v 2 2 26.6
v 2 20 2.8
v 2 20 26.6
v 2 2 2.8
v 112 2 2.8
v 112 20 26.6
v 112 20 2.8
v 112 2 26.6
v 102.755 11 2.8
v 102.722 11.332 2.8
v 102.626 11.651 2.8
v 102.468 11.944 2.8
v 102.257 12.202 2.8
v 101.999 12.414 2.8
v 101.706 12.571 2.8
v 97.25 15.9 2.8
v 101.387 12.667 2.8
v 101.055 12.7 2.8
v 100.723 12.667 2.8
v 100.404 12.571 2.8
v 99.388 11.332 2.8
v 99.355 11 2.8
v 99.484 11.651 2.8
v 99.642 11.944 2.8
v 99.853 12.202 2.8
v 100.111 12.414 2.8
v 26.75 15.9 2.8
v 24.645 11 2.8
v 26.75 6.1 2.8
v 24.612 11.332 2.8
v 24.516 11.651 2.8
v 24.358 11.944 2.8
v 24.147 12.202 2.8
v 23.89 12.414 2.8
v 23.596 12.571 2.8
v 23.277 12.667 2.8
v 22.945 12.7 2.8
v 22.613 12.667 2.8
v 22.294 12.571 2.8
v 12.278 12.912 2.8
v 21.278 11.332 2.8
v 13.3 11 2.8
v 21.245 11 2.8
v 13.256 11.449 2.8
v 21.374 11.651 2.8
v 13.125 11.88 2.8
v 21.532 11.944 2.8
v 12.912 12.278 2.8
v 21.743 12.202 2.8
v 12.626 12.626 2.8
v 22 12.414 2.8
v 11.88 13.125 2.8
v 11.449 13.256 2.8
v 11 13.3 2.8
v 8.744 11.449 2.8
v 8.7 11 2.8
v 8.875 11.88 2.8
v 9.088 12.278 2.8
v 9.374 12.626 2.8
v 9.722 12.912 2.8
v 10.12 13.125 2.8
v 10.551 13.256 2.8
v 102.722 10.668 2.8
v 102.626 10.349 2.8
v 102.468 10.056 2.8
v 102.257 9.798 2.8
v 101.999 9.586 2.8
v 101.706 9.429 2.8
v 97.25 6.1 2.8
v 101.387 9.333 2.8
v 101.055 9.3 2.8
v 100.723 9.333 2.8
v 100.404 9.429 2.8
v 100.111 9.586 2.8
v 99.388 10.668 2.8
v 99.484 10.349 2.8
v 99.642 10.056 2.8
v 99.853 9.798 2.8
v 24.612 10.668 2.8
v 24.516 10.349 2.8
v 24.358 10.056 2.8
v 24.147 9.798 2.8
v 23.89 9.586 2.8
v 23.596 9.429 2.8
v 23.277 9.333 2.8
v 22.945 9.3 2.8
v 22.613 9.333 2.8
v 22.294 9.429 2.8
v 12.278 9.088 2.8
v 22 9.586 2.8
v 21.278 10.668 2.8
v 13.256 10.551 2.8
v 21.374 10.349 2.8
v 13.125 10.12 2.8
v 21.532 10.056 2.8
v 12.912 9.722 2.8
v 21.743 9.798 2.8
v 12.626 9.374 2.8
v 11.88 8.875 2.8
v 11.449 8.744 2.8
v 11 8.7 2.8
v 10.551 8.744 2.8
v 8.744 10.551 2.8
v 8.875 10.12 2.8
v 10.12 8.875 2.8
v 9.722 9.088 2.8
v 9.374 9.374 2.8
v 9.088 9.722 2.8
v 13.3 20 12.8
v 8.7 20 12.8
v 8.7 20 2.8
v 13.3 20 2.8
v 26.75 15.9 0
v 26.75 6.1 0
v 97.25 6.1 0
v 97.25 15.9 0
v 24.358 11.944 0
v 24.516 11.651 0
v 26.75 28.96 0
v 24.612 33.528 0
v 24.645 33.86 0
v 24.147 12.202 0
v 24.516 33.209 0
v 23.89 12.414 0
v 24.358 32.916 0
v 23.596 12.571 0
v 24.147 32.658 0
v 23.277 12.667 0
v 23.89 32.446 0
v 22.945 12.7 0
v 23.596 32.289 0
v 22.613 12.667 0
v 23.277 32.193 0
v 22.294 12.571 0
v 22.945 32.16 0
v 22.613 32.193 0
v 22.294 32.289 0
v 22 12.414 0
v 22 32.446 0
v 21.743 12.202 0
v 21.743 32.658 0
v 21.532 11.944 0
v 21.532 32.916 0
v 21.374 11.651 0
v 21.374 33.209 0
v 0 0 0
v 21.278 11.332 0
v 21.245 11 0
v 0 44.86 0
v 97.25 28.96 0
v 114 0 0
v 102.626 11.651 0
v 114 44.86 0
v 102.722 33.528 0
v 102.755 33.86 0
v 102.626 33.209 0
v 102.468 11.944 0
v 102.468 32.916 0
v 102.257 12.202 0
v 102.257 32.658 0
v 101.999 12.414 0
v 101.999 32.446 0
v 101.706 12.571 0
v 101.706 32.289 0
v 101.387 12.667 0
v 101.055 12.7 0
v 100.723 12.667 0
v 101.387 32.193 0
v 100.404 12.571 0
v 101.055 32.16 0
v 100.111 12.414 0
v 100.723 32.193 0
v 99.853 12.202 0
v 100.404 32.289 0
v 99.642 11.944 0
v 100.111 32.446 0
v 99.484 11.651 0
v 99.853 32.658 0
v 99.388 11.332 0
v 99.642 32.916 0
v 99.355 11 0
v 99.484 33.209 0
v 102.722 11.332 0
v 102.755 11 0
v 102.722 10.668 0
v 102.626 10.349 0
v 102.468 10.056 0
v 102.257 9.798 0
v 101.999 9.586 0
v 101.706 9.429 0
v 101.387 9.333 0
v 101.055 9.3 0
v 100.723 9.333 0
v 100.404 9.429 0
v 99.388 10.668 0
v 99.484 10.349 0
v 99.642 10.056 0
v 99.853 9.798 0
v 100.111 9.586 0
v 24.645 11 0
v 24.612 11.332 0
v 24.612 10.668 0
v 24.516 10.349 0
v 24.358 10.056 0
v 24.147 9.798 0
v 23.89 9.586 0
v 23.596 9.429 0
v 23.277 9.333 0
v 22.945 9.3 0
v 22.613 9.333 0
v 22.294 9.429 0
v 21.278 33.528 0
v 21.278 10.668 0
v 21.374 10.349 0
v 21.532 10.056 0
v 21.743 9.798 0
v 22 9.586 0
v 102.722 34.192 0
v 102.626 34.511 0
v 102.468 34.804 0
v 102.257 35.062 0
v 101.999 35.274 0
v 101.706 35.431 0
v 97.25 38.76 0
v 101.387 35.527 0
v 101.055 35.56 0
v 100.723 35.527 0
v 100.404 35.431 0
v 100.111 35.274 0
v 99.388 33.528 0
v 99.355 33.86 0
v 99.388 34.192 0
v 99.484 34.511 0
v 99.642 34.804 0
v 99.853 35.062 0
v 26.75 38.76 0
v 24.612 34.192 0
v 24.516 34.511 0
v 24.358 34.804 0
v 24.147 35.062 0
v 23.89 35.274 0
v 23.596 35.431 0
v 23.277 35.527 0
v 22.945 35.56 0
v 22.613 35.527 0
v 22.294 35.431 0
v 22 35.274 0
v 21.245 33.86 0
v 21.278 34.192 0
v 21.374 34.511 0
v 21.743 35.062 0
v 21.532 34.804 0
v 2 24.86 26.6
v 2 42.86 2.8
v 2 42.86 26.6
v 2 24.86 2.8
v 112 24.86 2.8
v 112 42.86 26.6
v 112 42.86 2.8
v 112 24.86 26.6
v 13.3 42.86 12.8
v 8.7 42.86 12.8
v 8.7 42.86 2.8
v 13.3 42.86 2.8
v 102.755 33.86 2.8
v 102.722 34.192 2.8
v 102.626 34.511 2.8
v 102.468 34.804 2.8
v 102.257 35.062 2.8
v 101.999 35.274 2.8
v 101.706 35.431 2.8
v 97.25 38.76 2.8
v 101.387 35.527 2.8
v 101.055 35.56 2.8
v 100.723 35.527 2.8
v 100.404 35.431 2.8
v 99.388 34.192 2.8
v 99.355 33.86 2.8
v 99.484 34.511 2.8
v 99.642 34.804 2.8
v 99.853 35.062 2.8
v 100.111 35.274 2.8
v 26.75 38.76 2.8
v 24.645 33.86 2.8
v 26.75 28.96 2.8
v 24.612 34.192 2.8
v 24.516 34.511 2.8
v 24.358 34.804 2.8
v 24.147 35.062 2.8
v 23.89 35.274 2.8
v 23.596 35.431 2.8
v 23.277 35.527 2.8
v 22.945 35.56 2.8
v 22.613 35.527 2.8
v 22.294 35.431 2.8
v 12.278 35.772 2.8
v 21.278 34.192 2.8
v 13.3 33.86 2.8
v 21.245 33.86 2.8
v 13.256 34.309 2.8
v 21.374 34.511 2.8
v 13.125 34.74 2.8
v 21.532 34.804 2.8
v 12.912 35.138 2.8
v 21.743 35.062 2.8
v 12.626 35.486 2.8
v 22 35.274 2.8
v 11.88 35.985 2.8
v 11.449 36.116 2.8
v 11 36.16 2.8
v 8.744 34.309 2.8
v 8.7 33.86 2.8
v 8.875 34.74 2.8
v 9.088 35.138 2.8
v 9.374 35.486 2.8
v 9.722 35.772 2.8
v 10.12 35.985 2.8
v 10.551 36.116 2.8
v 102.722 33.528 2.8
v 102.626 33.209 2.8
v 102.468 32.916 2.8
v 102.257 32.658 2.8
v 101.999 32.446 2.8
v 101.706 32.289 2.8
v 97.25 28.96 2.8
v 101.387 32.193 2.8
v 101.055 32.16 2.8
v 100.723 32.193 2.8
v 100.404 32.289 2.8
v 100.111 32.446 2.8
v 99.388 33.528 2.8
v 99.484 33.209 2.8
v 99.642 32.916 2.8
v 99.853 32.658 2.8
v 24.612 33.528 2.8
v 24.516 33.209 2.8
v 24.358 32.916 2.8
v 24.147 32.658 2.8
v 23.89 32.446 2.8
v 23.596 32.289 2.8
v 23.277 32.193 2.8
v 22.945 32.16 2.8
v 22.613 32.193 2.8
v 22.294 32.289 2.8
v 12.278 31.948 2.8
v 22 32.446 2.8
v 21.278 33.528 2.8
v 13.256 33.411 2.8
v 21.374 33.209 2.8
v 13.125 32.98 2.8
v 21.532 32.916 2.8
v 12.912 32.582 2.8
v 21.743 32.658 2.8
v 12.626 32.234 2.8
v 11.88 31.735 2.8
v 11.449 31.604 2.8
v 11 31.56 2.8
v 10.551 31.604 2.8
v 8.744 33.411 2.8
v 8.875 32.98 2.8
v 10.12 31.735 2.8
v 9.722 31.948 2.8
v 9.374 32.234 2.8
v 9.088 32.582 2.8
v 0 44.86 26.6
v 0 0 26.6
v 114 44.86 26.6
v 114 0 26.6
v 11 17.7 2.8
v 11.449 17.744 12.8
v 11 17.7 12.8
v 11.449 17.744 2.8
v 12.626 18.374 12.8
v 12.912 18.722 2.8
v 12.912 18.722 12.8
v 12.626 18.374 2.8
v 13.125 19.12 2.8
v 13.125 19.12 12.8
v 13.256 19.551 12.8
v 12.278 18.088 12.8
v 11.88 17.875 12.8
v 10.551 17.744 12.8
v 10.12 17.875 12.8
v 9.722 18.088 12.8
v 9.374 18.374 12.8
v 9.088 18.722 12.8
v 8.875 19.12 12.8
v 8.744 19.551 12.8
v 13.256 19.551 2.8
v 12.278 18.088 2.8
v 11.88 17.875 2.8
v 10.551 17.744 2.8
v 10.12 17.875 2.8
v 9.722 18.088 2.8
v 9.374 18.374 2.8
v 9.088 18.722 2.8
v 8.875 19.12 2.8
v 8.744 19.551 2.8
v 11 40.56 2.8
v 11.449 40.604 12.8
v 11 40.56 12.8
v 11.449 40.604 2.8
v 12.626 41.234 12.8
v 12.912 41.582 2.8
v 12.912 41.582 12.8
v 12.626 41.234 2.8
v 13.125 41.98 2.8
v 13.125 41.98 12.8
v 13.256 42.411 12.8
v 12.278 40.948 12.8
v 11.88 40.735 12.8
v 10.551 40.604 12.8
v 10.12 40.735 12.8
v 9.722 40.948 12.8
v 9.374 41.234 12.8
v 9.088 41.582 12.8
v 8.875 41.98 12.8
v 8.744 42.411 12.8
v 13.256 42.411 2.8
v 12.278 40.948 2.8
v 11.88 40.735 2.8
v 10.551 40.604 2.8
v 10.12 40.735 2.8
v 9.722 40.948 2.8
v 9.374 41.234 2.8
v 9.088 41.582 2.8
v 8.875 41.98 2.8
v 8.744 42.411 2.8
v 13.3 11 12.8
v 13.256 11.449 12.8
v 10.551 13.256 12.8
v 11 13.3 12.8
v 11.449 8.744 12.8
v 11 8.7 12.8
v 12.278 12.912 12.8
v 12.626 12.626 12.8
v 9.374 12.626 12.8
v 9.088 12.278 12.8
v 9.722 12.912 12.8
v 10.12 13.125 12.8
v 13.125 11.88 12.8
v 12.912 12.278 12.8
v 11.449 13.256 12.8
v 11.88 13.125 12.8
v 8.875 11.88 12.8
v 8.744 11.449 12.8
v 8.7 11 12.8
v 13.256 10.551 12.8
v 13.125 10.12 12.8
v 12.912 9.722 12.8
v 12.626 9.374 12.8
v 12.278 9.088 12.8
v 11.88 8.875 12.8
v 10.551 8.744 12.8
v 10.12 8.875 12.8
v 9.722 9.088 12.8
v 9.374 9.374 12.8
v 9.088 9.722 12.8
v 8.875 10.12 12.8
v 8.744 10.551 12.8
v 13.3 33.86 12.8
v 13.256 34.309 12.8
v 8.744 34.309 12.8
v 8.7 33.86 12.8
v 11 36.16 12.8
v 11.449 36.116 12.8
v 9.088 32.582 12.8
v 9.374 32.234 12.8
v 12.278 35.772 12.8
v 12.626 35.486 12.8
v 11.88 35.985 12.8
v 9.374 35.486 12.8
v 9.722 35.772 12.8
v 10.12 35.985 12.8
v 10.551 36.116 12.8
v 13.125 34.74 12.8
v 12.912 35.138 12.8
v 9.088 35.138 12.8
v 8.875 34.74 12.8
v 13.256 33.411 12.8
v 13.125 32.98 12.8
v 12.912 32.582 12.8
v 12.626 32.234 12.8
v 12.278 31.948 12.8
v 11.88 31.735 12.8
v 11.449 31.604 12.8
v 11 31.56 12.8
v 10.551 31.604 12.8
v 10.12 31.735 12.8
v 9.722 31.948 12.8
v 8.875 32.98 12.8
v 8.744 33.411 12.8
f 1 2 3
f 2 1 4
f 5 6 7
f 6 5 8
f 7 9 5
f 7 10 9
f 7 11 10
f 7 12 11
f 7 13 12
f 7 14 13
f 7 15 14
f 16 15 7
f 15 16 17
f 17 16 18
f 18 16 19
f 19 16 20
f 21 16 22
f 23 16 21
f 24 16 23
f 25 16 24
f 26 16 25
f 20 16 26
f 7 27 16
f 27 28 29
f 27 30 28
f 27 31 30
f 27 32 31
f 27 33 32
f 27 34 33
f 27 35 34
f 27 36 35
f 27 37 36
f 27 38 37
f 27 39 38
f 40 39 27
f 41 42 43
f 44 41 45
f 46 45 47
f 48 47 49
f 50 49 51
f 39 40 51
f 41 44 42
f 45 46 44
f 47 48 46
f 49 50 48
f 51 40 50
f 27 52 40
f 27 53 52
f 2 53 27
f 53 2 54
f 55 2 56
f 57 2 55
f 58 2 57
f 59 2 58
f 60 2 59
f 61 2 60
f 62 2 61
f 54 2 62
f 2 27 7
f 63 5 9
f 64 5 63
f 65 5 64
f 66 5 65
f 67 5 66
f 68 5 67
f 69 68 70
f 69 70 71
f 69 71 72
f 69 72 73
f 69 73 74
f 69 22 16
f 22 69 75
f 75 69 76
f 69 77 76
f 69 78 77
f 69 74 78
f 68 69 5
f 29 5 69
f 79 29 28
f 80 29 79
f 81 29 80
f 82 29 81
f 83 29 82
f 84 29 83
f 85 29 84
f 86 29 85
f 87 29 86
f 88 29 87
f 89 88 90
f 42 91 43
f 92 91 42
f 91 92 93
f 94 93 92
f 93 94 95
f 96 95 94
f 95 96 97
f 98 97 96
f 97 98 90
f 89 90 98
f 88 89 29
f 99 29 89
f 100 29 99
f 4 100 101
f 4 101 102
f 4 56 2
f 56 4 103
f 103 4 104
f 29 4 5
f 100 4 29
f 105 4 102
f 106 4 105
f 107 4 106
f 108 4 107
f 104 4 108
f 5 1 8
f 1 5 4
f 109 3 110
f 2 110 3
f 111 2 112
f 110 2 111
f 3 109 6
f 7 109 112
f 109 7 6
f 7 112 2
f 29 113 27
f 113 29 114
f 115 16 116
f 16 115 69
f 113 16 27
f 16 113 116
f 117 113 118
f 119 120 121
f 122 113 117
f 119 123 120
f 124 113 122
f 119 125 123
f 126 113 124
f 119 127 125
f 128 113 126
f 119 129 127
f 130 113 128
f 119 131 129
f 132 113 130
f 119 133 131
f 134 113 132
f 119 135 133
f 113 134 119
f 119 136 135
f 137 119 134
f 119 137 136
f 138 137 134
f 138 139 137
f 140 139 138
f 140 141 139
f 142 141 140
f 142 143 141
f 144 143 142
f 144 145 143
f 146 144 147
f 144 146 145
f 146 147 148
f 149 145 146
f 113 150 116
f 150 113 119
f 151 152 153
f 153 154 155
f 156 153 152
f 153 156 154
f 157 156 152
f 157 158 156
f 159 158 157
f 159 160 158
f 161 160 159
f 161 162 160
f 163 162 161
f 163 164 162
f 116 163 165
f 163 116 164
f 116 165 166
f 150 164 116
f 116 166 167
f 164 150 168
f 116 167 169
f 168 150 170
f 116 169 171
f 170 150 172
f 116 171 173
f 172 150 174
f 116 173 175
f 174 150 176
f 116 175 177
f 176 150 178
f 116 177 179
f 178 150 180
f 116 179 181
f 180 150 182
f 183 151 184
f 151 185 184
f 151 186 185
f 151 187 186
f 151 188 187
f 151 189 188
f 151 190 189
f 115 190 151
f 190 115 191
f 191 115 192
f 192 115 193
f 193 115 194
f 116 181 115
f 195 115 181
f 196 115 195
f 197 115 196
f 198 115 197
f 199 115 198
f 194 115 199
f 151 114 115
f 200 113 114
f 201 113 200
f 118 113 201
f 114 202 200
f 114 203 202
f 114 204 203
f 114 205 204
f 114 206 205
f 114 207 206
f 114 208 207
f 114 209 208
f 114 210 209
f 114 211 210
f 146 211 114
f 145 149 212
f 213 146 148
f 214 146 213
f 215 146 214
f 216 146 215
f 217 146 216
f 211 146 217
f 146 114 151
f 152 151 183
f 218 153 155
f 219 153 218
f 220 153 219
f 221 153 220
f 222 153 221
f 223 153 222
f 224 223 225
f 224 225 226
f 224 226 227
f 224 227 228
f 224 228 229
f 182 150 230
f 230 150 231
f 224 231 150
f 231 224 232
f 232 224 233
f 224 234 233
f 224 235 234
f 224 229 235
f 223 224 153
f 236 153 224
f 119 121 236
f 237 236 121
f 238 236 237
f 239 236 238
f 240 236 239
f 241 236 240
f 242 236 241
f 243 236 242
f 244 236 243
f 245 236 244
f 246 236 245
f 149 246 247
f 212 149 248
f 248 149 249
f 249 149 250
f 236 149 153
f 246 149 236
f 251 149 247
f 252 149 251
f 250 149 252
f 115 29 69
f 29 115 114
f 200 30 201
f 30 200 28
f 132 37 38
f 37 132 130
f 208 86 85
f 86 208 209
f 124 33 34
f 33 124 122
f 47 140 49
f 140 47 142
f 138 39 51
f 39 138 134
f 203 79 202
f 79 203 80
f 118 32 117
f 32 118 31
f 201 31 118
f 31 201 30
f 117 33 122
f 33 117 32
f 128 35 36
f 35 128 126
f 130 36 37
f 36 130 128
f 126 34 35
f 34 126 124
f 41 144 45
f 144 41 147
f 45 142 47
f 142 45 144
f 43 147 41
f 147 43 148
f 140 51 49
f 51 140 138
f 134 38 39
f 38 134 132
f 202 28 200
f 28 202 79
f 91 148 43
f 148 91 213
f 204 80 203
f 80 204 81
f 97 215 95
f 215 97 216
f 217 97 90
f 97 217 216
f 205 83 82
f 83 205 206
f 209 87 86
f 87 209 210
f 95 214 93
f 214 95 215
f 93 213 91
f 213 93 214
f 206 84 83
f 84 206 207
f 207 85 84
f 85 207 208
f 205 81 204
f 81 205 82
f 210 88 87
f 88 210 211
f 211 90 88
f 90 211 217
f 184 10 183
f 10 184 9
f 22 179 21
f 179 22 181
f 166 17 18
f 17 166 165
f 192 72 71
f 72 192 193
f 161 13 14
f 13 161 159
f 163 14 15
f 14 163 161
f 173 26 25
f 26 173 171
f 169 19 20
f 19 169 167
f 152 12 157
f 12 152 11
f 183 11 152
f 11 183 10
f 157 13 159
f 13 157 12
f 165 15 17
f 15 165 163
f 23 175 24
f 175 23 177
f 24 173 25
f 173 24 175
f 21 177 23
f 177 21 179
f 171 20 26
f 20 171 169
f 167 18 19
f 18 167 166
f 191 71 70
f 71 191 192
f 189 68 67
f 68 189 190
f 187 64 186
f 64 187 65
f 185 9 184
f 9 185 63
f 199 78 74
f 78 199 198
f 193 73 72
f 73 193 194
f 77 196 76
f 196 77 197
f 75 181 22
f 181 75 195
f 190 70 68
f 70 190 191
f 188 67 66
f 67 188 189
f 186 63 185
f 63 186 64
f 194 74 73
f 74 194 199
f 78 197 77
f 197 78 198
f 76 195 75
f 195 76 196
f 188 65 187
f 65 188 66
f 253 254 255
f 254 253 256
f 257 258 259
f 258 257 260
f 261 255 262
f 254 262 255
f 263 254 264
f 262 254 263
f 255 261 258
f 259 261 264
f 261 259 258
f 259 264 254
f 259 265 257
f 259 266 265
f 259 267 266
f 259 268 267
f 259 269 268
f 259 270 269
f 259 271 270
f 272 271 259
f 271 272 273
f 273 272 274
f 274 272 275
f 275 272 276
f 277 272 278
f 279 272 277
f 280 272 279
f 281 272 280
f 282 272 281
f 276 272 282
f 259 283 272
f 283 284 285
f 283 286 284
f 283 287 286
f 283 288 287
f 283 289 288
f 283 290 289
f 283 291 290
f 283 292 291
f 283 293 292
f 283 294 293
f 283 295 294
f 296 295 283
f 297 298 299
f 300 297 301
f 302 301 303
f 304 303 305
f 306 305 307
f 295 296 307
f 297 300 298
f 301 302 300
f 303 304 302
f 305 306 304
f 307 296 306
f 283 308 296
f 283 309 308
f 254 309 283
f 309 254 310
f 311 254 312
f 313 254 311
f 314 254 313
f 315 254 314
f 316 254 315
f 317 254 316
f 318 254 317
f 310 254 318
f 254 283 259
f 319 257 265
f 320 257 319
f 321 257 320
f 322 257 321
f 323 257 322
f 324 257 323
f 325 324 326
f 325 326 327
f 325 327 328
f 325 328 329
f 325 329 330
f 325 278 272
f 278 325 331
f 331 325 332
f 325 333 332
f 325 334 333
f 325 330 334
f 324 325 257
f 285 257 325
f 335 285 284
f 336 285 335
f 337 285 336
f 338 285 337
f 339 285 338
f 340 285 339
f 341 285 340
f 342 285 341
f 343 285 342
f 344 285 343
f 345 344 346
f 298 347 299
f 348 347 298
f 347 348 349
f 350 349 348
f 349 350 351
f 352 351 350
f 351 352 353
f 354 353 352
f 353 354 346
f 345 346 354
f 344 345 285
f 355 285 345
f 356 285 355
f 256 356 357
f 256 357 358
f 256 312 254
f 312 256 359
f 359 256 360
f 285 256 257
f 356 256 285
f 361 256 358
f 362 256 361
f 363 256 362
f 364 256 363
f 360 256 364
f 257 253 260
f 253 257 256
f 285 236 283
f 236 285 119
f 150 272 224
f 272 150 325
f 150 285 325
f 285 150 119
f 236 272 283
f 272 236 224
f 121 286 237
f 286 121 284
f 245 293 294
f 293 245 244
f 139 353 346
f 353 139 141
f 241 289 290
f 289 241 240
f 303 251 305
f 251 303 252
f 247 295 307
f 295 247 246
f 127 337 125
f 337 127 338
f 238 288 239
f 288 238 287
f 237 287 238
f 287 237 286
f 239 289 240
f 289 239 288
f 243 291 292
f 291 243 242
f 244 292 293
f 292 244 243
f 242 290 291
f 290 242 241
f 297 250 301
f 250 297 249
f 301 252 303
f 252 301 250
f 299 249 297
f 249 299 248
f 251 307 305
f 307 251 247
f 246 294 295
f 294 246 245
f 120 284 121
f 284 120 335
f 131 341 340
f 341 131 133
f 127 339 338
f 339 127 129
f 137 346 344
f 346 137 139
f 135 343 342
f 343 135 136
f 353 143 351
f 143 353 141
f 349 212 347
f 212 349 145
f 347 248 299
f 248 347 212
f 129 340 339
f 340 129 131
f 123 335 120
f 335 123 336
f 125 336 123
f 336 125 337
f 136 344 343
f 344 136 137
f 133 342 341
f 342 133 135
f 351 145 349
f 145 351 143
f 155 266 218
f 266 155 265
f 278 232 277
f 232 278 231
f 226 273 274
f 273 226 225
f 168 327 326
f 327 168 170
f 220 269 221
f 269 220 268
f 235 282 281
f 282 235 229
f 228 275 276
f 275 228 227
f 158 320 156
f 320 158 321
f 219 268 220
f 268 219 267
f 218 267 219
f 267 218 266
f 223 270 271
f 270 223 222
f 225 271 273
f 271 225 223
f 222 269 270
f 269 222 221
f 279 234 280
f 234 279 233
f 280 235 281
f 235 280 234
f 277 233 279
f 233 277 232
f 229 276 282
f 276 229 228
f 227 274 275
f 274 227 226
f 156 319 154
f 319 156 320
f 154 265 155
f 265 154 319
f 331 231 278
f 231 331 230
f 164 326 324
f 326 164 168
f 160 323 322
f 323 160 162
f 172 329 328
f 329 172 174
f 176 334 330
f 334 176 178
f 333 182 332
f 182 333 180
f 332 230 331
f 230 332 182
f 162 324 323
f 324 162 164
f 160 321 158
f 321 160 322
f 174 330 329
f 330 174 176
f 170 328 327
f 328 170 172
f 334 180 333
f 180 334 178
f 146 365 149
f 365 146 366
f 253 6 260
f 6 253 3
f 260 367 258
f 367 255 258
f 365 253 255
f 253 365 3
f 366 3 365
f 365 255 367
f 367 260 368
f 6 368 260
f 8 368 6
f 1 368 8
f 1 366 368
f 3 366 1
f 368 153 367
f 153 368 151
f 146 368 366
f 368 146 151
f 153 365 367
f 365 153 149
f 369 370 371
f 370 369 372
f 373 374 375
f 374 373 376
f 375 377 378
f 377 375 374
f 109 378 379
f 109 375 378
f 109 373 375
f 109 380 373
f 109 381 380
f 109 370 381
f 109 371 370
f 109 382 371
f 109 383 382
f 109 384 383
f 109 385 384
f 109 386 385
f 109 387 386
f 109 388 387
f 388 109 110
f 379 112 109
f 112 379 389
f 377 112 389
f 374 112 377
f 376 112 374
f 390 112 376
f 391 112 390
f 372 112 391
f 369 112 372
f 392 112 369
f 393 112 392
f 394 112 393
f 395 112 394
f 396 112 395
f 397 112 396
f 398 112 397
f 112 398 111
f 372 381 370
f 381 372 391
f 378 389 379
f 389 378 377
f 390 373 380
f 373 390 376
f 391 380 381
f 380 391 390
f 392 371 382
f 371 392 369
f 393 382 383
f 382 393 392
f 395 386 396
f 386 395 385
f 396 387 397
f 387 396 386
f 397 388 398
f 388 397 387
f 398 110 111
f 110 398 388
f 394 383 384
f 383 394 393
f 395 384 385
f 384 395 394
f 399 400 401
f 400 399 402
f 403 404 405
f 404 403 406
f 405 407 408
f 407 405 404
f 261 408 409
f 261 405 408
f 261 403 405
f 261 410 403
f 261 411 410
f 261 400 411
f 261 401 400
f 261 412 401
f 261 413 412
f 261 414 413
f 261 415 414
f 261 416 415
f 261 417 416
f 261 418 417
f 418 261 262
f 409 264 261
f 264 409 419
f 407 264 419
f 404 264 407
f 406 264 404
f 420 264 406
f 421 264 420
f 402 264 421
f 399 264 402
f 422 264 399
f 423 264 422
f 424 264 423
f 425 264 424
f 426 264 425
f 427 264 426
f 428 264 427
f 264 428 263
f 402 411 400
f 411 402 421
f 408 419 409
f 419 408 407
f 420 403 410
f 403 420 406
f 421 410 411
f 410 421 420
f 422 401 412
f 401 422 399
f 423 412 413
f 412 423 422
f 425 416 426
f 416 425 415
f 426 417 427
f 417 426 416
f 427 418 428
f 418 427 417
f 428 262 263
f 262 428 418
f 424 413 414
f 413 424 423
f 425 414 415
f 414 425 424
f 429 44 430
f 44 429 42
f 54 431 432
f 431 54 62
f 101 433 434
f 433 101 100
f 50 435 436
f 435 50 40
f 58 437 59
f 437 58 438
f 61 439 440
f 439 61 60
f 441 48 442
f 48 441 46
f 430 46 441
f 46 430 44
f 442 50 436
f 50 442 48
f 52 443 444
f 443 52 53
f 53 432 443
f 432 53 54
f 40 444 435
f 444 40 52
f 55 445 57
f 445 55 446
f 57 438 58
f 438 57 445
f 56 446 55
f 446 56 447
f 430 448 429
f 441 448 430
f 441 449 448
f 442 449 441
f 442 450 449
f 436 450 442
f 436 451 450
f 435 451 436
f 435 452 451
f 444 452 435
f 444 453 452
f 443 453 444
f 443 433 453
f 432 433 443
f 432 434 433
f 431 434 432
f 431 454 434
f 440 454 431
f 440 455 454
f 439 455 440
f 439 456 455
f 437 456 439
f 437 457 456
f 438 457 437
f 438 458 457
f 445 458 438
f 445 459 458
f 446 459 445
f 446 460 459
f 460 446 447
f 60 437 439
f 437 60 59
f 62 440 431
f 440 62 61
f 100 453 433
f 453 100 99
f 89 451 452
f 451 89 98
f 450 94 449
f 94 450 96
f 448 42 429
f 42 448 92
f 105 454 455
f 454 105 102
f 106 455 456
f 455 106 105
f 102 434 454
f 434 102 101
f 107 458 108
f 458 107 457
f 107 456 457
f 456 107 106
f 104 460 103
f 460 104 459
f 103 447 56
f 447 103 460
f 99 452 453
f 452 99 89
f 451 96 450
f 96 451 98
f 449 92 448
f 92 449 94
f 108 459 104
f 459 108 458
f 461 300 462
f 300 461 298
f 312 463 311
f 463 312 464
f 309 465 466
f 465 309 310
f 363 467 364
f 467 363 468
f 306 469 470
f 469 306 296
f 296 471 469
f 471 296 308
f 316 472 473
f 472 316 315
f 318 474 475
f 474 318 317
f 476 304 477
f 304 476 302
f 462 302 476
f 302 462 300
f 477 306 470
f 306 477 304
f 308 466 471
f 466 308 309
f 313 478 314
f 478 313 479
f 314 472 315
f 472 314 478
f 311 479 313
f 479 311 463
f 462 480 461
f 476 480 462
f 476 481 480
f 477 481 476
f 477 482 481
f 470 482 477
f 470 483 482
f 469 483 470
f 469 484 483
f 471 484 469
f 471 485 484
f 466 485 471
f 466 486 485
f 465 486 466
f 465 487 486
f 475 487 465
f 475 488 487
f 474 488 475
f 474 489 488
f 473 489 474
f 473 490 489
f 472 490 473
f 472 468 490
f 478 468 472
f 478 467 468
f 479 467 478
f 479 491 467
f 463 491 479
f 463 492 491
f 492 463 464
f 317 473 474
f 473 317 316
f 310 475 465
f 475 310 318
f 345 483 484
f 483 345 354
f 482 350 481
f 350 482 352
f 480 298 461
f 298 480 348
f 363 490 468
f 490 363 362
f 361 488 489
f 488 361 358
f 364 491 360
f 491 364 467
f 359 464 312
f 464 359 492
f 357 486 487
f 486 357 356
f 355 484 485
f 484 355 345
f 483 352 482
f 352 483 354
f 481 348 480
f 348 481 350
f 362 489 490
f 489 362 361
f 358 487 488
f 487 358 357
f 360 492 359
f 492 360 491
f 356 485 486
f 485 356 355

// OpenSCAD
$fn=32;
cartridge_length=109;
cartridge_width=17;
cartridge_spacing=22.86;
bottom_thickness=2.8;
connector_length=70.1;
connector_width=9.4;
connector_offset=5;
holes_distance=78.11;
holes_diameter=3.4; // 3 + 0.4
key_diameter=5-0.4; // 5 - 0.4
key_height=10; // 11 - 0.4
key_offset=46;
notch_diameter=5-0.4;
notch_height=10;
tolerance=0.5;
connector_tolerance=0.2;
thickness=2;
bounding_box_length=cartridge_length+tolerance*2+thickness*2;
bounding_box_width=cartridge_width+cartridge_spacing+tolerance*2+thickness*2;
bounding_box_height=15+1.6+10;
difference() {
    // outside shape
    cube([bounding_box_length,bounding_box_width,bounding_box_height]);
    union() {
        // lower slot - cartridge cutout
        translate([thickness,thickness,bottom_thickness]) {
            cube([cartridge_length+tolerance*2,cartridge_width+tolerance*2,bounding_box_height]);
        }
        // lower slot - connector cutout
        translate([thickness+tolerance+cartridge_length/2+5-connector_length/2-connector_tolerance,thickness+tolerance+cartridge_width/2-connector_width/2-connector_tolerance,0]) {
            cube([connector_length+connector_tolerance*2,connector_width+connector_tolerance*2,bottom_thickness]);
        }
        // lower slot - left hole
        translate([thickness+tolerance+cartridge_length/2+5-holes_distance/2,thickness+tolerance+cartridge_width/2,0]) {
            cylinder(d=holes_diameter,h=bottom_thickness);
        }
        // lower slot - right hole
        translate([thickness+tolerance+cartridge_length/2+5+holes_distance/2,thickness+tolerance+cartridge_width/2,0]) {
            cylinder(d=holes_diameter,h=bottom_thickness);
        }
        // upper slot - cartridge cutout
        translate([thickness,cartridge_spacing+thickness,bottom_thickness]) {
            cube([cartridge_length+tolerance*2,cartridge_width+tolerance*2,bounding_box_height]);
        }
        // upper slot - connector cutout
        translate([thickness+tolerance+cartridge_length/2+5-connector_length/2-connector_tolerance,cartridge_spacing+thickness+tolerance+cartridge_width/2-connector_width/2-connector_tolerance,0]) {
            cube([connector_length+connector_tolerance*2,connector_width+connector_tolerance*2,bottom_thickness]);
        }
        // upper slot - left hole
        translate([thickness+tolerance+cartridge_length/2+5-holes_distance/2,cartridge_spacing+thickness+tolerance+cartridge_width/2,0]) {
            cylinder(d=holes_diameter,h=bottom_thickness);
        }
        // upper slot - right hole
        translate([thickness+tolerance+cartridge_length/2+5+holes_distance/2,cartridge_spacing+thickness+tolerance+cartridge_width/2,0]) {
            cylinder(d=holes_diameter,h=bottom_thickness);
        }
    }
}
// lower slot - key cylinder
translate([thickness+tolerance+cartridge_length/2-key_offset,thickness+tolerance+cartridge_width/2,bottom_thickness]) {
    cylinder(d=key_diameter,h=key_height);
}
// upper slot - key cylinder
translate([thickness+tolerance+cartridge_length/2-key_offset,cartridge_spacing+thickness+tolerance+cartridge_width/2, bottom_thickness]) {
    cylinder(d=key_diameter,h=key_height);
}

// lower slot - key notch
translate([thickness+tolerance+cartridge_length/2-key_offset,thickness+tolerance*2+cartridge_width,bottom_thickness]) {
    difference() {
        cylinder(d=notch_diameter,h=notch_height);
        translate([-notch_diameter/2,0,0]) {
            cube([notch_diameter,notch_diameter/2,notch_height]);
        }
    }
}
// upper slot - key notch
translate([thickness+tolerance+cartridge_length/2-key_offset,cartridge_spacing+thickness+tolerance*2+cartridge_width,bottom_thickness]) {
    difference() {
        cylinder(d=notch_diameter,h=notch_height);
        translate([-notch_diameter/2,0,0]) {
            cube([notch_diameter,notch_diameter/2,notch_height]);
        }
    }
}
